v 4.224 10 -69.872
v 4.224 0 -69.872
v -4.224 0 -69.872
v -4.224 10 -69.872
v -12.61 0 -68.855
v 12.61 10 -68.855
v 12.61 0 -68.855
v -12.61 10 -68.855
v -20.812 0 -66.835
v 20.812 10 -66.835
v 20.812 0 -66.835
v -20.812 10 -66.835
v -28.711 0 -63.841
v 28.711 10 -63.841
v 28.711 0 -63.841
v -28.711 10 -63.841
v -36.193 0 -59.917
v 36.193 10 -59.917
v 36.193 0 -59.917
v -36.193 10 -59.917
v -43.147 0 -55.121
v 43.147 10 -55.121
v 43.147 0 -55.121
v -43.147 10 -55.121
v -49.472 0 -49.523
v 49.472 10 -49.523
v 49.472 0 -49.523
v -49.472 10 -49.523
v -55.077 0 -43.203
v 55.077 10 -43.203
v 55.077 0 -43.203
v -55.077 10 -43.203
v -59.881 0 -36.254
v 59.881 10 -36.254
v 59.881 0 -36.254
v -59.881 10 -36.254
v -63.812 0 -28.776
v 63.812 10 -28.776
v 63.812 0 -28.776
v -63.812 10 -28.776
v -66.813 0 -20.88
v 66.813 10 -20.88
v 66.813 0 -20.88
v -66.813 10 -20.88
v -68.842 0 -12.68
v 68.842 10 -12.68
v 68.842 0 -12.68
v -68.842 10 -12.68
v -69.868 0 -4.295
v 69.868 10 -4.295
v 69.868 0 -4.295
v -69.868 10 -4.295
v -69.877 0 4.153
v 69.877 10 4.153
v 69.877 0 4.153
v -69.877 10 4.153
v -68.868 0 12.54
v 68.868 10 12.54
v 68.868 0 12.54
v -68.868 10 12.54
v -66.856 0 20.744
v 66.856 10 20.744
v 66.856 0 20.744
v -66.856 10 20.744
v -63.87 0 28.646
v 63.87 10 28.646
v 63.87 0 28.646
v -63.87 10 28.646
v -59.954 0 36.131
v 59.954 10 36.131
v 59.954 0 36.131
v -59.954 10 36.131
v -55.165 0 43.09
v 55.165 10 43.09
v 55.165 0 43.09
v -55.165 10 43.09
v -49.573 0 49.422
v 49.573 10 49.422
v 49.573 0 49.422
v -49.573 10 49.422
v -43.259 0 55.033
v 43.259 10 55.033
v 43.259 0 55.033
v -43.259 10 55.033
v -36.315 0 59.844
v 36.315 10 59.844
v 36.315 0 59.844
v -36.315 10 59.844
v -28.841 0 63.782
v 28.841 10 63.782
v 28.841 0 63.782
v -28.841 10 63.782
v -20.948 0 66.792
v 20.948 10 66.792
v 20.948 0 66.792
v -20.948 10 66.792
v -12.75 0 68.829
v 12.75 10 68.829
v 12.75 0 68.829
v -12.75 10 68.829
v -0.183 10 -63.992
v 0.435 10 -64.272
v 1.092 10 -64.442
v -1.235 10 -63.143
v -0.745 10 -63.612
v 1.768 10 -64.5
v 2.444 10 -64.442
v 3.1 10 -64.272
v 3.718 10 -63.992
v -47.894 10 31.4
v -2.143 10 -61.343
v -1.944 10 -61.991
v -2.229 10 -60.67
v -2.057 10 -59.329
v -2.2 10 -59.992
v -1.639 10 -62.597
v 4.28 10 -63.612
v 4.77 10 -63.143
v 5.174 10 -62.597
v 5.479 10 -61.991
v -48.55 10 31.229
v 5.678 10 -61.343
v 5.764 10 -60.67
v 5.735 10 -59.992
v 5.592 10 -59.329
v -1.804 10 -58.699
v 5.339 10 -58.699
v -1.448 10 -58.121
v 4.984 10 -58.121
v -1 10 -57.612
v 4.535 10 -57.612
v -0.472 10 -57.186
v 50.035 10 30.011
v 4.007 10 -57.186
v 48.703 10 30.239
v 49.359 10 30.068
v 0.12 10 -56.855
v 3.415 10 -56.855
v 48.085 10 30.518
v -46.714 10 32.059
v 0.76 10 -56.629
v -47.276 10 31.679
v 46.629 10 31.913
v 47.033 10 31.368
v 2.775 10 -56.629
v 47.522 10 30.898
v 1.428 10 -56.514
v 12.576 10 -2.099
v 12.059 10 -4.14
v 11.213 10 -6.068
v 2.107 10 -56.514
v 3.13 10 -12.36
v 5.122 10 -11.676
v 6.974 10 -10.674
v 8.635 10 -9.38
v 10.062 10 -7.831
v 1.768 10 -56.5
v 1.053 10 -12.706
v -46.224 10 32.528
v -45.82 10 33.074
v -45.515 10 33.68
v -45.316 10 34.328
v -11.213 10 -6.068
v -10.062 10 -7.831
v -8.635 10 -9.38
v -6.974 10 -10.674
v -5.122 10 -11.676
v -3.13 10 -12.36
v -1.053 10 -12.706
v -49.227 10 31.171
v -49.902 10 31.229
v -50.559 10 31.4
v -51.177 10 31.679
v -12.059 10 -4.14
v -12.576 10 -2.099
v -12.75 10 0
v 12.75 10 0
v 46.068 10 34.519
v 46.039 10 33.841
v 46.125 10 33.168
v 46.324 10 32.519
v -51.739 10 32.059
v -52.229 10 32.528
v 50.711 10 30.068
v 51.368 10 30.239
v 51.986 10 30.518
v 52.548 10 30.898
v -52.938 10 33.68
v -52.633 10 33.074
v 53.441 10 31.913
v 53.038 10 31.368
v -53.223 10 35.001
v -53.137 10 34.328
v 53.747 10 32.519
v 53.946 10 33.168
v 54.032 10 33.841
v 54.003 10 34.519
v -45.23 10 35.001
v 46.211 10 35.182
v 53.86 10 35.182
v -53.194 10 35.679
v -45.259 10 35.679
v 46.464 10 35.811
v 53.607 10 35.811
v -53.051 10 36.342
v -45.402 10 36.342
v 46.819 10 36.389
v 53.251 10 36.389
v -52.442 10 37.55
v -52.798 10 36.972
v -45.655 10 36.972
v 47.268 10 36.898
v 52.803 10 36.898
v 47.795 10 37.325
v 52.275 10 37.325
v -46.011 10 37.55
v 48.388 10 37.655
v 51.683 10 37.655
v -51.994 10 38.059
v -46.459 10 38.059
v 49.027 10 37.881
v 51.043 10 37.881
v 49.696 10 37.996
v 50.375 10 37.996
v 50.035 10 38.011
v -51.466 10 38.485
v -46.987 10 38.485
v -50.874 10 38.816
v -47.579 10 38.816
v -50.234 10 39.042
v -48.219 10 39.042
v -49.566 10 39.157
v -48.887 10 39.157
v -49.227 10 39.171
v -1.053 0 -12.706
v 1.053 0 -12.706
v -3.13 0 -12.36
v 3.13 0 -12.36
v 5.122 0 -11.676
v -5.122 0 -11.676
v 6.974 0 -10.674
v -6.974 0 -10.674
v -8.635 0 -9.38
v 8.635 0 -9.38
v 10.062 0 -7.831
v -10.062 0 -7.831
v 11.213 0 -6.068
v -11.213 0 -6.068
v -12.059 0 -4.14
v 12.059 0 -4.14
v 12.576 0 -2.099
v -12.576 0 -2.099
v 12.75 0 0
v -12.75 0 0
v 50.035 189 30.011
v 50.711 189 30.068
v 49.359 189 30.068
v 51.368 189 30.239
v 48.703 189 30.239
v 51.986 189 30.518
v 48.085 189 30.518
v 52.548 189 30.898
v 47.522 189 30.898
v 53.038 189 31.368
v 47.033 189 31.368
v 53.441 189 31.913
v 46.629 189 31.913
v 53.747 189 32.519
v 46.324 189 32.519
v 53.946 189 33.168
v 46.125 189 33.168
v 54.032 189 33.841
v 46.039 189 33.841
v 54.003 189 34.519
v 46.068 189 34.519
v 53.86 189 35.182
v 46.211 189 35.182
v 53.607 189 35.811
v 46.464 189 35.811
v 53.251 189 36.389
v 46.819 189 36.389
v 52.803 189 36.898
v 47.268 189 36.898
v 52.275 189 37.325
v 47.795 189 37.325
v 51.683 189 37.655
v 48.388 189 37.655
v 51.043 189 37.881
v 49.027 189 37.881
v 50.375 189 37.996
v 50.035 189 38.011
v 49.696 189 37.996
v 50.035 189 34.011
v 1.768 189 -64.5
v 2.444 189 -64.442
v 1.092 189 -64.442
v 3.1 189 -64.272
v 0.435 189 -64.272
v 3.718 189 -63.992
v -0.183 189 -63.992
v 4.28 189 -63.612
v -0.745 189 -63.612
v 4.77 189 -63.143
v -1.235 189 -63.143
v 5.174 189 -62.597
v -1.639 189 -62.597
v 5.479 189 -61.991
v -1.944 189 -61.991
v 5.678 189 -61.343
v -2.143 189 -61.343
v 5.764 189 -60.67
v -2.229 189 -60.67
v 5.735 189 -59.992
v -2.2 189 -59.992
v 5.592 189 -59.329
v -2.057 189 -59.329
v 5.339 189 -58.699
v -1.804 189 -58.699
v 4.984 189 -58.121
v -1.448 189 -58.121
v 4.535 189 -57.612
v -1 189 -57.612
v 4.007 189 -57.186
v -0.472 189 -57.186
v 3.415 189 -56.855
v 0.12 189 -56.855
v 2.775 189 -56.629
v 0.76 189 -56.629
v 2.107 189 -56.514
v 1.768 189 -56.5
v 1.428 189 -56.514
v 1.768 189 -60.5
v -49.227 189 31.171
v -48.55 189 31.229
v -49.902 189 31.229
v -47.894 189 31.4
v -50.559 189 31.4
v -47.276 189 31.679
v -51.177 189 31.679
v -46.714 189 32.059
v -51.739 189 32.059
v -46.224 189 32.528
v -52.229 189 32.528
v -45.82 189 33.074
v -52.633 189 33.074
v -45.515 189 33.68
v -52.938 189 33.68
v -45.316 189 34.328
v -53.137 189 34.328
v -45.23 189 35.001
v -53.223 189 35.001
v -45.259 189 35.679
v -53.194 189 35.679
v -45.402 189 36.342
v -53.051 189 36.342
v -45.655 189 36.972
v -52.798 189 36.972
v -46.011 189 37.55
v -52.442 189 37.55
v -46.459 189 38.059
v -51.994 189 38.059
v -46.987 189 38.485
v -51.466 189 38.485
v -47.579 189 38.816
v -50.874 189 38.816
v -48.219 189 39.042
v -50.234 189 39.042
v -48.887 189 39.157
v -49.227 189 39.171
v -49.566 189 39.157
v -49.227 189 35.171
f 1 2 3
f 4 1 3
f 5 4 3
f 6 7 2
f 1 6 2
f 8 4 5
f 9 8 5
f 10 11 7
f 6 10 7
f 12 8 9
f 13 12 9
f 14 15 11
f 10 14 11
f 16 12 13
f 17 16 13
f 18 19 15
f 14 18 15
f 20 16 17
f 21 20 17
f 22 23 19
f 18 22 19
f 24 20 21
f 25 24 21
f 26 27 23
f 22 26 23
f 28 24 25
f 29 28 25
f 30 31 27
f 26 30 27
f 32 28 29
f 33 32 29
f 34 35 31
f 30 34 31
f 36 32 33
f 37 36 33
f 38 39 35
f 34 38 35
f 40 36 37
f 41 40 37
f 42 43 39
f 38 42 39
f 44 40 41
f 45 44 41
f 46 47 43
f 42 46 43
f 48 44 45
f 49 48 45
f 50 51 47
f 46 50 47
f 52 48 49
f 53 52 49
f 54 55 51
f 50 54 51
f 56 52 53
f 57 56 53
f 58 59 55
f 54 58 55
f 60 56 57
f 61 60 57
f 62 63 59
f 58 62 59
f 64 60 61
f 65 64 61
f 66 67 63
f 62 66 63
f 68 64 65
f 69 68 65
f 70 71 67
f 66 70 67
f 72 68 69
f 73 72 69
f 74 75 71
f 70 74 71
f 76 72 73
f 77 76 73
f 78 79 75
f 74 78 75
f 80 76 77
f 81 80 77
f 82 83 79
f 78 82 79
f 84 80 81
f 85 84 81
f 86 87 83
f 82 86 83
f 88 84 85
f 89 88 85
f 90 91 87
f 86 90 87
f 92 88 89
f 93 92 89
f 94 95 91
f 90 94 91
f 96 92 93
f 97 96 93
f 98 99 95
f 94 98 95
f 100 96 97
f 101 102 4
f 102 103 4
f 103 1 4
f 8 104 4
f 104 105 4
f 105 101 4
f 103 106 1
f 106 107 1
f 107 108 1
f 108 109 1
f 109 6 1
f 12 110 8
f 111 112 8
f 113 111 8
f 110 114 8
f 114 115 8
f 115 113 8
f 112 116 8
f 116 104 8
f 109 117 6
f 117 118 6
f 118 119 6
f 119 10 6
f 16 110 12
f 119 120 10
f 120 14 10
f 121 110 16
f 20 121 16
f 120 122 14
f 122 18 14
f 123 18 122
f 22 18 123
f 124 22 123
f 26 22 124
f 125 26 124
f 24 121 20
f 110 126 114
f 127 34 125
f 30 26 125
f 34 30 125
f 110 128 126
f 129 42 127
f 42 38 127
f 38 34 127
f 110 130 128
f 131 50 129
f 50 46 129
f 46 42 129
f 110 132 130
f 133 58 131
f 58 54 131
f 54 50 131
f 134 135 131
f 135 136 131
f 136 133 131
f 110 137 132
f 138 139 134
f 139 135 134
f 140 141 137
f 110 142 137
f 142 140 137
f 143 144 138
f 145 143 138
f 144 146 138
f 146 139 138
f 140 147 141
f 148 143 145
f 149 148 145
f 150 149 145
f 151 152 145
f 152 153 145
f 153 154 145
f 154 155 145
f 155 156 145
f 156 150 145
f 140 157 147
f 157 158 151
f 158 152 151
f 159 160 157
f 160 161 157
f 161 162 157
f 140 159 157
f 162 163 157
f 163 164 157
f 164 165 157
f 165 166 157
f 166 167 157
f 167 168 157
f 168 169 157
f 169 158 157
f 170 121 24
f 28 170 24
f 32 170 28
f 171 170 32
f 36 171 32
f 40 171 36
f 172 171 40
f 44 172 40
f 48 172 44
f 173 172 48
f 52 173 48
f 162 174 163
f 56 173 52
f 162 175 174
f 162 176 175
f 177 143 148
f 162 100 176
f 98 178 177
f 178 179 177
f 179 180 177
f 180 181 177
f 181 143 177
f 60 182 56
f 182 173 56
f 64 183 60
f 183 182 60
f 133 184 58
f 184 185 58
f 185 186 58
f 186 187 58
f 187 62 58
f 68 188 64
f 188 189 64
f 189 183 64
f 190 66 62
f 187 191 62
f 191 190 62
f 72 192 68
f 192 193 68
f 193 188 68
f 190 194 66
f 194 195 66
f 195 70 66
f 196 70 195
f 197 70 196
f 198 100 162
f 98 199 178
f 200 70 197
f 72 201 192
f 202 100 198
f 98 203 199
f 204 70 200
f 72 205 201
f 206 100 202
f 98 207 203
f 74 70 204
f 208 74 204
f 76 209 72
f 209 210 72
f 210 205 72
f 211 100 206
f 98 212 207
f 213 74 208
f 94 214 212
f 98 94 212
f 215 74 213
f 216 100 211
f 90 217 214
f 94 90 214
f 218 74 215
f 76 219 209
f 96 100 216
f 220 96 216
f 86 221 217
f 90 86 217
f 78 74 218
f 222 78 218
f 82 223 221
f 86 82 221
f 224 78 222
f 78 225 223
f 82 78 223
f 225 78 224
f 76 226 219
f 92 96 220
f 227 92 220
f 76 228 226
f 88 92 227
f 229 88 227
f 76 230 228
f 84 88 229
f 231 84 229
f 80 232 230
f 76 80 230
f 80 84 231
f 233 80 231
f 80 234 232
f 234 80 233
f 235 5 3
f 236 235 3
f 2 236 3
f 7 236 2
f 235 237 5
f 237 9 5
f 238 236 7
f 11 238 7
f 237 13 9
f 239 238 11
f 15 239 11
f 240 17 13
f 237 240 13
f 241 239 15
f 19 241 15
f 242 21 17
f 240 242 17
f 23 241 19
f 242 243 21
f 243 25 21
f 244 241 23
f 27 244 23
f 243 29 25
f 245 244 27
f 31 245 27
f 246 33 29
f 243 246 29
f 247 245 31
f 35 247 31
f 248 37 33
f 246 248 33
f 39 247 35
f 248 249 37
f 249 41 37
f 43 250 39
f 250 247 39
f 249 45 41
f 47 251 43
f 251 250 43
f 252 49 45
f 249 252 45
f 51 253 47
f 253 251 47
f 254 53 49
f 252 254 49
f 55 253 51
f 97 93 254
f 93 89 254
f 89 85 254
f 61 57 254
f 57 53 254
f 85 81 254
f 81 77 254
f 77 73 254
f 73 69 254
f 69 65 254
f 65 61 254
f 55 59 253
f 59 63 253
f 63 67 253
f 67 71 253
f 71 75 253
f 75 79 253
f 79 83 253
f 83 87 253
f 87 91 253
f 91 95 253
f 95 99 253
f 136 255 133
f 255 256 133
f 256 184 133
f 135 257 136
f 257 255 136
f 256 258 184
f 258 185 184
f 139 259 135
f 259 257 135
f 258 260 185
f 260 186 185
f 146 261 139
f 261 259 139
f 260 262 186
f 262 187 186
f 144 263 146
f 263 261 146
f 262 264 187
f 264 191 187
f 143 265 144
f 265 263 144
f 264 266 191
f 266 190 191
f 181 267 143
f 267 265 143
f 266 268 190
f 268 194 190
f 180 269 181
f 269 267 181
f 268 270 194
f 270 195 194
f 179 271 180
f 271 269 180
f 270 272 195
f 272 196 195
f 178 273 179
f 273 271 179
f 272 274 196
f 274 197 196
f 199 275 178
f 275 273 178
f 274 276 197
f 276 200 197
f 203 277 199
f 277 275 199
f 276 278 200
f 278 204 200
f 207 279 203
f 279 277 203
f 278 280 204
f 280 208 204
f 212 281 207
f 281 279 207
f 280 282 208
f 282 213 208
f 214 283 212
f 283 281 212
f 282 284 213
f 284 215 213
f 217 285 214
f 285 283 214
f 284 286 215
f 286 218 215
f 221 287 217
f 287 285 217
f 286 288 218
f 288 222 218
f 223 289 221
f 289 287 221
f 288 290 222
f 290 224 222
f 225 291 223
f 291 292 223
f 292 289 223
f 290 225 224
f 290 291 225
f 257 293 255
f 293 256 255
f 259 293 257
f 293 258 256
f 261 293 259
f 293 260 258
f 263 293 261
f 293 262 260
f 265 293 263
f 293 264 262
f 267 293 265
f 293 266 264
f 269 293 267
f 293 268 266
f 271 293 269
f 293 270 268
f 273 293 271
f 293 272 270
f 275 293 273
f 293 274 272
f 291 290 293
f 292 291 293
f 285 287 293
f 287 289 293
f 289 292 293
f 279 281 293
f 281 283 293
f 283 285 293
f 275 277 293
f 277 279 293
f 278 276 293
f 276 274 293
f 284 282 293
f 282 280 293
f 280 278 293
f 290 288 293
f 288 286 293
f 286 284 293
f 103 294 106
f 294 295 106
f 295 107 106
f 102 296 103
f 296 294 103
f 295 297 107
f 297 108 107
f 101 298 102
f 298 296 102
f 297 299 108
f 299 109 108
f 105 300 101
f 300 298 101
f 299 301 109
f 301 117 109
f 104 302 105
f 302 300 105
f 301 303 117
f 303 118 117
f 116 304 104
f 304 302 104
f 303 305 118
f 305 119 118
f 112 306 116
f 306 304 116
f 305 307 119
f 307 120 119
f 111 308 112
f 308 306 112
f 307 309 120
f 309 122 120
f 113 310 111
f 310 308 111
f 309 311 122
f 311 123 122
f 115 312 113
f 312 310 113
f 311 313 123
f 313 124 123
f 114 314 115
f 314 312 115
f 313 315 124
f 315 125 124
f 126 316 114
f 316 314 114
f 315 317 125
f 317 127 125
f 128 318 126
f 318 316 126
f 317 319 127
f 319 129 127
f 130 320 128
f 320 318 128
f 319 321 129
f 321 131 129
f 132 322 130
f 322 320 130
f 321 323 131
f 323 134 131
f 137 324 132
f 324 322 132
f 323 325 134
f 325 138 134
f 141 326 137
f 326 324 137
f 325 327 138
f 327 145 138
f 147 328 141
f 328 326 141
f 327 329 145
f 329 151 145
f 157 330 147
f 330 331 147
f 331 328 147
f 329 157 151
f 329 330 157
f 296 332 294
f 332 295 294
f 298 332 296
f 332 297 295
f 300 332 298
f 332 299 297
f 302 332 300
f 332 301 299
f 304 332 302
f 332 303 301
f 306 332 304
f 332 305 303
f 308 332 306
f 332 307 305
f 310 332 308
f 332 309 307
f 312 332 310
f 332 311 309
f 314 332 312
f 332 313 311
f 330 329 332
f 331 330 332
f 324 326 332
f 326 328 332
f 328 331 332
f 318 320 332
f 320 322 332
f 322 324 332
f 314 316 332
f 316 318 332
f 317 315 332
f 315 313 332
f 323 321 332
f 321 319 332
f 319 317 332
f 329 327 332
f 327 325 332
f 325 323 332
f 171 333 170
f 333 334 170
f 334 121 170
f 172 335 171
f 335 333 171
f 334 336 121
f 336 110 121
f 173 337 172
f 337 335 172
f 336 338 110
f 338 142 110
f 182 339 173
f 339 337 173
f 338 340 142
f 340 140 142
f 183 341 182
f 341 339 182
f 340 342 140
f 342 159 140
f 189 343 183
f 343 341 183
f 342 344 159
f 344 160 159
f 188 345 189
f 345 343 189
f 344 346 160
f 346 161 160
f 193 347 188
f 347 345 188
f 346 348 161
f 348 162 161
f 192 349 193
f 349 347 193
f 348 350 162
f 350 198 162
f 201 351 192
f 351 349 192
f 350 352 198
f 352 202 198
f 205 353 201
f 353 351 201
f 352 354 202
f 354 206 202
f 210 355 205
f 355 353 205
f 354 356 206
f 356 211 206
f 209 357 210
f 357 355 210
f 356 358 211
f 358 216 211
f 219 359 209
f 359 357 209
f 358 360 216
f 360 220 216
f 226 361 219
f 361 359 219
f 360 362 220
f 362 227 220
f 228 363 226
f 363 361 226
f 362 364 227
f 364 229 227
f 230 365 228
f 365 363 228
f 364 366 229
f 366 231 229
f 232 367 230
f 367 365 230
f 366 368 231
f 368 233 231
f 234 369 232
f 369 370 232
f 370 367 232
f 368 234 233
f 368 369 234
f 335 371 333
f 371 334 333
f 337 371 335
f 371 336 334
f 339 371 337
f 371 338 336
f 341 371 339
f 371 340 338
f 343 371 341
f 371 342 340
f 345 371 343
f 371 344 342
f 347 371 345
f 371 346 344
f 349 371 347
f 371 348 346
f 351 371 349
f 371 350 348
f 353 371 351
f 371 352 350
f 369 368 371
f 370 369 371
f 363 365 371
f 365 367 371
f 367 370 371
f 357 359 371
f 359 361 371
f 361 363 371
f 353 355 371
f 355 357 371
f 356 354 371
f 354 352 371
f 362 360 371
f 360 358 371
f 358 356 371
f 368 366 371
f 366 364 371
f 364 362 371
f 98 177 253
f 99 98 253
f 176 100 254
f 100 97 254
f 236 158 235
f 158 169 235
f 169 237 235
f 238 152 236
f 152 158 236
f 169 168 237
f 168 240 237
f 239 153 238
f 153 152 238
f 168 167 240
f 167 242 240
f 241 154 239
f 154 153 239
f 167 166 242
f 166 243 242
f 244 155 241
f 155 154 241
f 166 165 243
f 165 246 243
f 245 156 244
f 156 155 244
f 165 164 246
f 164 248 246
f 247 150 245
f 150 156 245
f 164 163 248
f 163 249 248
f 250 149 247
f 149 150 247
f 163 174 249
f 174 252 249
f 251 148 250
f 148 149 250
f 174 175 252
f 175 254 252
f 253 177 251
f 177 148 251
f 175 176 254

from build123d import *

# Parameters (mm, degrees)
SKETCH_1_R          = 70
EXTRUDE_1_DEPTH     = 10
SKETCH_2_R          = 4
EXTRUDE_4_DEPTH     = 179
SKETCH_5_R          = 12.75
SKETCH_5_W          = 25.5
SKETCH_5_H          = 74.344778921
CUT_EXTRUDE_1_DEPTH = 10


with BuildPart() as part:
    # 草图1 → 凸台-拉伸1 (new body)
    with BuildSketch(Plane(origin=(0, 0, 0), x_dir=(1, 0, 0), z_dir=(0, 1, 0))):
        with Locations(Location((0, 0, 0), (0, 0, 270))):
            Circle(SKETCH_1_R)
    extrude(amount=EXTRUDE_1_DEPTH)

    # 草图2 → 凸台-拉伸4 (add)
    with BuildSketch(Plane(origin=(0, 10, 0), x_dir=(1, 0, 0), z_dir=(0, 1, 0))):
        with Locations(Location((-49.22649816, -35.171037501, 0), (0, 0, 90))):
            Circle(SKETCH_2_R)
        with Locations(Location((1.767528256, 60.5, 0), (0, 0, 90))):
            Circle(SKETCH_2_R)
        with Locations(Location((50.035340598, -34.010508542, 0), (0, 0, 90))):
            Circle(SKETCH_2_R)
    extrude(amount=EXTRUDE_4_DEPTH)

    # 草图5 → 切除-拉伸1 (cut)
    with BuildSketch(Plane(origin=(0, 10, 0), x_dir=(1, 0, 0), z_dir=(0, 1, 0))):
        Circle(SKETCH_5_R)
        with Locations((0, -37.17238946)):
            Rectangle(SKETCH_5_W, SKETCH_5_H)
    extrude(amount=-CUT_EXTRUDE_1_DEPTH, mode=Mode.SUBTRACT)


solid = part.part
